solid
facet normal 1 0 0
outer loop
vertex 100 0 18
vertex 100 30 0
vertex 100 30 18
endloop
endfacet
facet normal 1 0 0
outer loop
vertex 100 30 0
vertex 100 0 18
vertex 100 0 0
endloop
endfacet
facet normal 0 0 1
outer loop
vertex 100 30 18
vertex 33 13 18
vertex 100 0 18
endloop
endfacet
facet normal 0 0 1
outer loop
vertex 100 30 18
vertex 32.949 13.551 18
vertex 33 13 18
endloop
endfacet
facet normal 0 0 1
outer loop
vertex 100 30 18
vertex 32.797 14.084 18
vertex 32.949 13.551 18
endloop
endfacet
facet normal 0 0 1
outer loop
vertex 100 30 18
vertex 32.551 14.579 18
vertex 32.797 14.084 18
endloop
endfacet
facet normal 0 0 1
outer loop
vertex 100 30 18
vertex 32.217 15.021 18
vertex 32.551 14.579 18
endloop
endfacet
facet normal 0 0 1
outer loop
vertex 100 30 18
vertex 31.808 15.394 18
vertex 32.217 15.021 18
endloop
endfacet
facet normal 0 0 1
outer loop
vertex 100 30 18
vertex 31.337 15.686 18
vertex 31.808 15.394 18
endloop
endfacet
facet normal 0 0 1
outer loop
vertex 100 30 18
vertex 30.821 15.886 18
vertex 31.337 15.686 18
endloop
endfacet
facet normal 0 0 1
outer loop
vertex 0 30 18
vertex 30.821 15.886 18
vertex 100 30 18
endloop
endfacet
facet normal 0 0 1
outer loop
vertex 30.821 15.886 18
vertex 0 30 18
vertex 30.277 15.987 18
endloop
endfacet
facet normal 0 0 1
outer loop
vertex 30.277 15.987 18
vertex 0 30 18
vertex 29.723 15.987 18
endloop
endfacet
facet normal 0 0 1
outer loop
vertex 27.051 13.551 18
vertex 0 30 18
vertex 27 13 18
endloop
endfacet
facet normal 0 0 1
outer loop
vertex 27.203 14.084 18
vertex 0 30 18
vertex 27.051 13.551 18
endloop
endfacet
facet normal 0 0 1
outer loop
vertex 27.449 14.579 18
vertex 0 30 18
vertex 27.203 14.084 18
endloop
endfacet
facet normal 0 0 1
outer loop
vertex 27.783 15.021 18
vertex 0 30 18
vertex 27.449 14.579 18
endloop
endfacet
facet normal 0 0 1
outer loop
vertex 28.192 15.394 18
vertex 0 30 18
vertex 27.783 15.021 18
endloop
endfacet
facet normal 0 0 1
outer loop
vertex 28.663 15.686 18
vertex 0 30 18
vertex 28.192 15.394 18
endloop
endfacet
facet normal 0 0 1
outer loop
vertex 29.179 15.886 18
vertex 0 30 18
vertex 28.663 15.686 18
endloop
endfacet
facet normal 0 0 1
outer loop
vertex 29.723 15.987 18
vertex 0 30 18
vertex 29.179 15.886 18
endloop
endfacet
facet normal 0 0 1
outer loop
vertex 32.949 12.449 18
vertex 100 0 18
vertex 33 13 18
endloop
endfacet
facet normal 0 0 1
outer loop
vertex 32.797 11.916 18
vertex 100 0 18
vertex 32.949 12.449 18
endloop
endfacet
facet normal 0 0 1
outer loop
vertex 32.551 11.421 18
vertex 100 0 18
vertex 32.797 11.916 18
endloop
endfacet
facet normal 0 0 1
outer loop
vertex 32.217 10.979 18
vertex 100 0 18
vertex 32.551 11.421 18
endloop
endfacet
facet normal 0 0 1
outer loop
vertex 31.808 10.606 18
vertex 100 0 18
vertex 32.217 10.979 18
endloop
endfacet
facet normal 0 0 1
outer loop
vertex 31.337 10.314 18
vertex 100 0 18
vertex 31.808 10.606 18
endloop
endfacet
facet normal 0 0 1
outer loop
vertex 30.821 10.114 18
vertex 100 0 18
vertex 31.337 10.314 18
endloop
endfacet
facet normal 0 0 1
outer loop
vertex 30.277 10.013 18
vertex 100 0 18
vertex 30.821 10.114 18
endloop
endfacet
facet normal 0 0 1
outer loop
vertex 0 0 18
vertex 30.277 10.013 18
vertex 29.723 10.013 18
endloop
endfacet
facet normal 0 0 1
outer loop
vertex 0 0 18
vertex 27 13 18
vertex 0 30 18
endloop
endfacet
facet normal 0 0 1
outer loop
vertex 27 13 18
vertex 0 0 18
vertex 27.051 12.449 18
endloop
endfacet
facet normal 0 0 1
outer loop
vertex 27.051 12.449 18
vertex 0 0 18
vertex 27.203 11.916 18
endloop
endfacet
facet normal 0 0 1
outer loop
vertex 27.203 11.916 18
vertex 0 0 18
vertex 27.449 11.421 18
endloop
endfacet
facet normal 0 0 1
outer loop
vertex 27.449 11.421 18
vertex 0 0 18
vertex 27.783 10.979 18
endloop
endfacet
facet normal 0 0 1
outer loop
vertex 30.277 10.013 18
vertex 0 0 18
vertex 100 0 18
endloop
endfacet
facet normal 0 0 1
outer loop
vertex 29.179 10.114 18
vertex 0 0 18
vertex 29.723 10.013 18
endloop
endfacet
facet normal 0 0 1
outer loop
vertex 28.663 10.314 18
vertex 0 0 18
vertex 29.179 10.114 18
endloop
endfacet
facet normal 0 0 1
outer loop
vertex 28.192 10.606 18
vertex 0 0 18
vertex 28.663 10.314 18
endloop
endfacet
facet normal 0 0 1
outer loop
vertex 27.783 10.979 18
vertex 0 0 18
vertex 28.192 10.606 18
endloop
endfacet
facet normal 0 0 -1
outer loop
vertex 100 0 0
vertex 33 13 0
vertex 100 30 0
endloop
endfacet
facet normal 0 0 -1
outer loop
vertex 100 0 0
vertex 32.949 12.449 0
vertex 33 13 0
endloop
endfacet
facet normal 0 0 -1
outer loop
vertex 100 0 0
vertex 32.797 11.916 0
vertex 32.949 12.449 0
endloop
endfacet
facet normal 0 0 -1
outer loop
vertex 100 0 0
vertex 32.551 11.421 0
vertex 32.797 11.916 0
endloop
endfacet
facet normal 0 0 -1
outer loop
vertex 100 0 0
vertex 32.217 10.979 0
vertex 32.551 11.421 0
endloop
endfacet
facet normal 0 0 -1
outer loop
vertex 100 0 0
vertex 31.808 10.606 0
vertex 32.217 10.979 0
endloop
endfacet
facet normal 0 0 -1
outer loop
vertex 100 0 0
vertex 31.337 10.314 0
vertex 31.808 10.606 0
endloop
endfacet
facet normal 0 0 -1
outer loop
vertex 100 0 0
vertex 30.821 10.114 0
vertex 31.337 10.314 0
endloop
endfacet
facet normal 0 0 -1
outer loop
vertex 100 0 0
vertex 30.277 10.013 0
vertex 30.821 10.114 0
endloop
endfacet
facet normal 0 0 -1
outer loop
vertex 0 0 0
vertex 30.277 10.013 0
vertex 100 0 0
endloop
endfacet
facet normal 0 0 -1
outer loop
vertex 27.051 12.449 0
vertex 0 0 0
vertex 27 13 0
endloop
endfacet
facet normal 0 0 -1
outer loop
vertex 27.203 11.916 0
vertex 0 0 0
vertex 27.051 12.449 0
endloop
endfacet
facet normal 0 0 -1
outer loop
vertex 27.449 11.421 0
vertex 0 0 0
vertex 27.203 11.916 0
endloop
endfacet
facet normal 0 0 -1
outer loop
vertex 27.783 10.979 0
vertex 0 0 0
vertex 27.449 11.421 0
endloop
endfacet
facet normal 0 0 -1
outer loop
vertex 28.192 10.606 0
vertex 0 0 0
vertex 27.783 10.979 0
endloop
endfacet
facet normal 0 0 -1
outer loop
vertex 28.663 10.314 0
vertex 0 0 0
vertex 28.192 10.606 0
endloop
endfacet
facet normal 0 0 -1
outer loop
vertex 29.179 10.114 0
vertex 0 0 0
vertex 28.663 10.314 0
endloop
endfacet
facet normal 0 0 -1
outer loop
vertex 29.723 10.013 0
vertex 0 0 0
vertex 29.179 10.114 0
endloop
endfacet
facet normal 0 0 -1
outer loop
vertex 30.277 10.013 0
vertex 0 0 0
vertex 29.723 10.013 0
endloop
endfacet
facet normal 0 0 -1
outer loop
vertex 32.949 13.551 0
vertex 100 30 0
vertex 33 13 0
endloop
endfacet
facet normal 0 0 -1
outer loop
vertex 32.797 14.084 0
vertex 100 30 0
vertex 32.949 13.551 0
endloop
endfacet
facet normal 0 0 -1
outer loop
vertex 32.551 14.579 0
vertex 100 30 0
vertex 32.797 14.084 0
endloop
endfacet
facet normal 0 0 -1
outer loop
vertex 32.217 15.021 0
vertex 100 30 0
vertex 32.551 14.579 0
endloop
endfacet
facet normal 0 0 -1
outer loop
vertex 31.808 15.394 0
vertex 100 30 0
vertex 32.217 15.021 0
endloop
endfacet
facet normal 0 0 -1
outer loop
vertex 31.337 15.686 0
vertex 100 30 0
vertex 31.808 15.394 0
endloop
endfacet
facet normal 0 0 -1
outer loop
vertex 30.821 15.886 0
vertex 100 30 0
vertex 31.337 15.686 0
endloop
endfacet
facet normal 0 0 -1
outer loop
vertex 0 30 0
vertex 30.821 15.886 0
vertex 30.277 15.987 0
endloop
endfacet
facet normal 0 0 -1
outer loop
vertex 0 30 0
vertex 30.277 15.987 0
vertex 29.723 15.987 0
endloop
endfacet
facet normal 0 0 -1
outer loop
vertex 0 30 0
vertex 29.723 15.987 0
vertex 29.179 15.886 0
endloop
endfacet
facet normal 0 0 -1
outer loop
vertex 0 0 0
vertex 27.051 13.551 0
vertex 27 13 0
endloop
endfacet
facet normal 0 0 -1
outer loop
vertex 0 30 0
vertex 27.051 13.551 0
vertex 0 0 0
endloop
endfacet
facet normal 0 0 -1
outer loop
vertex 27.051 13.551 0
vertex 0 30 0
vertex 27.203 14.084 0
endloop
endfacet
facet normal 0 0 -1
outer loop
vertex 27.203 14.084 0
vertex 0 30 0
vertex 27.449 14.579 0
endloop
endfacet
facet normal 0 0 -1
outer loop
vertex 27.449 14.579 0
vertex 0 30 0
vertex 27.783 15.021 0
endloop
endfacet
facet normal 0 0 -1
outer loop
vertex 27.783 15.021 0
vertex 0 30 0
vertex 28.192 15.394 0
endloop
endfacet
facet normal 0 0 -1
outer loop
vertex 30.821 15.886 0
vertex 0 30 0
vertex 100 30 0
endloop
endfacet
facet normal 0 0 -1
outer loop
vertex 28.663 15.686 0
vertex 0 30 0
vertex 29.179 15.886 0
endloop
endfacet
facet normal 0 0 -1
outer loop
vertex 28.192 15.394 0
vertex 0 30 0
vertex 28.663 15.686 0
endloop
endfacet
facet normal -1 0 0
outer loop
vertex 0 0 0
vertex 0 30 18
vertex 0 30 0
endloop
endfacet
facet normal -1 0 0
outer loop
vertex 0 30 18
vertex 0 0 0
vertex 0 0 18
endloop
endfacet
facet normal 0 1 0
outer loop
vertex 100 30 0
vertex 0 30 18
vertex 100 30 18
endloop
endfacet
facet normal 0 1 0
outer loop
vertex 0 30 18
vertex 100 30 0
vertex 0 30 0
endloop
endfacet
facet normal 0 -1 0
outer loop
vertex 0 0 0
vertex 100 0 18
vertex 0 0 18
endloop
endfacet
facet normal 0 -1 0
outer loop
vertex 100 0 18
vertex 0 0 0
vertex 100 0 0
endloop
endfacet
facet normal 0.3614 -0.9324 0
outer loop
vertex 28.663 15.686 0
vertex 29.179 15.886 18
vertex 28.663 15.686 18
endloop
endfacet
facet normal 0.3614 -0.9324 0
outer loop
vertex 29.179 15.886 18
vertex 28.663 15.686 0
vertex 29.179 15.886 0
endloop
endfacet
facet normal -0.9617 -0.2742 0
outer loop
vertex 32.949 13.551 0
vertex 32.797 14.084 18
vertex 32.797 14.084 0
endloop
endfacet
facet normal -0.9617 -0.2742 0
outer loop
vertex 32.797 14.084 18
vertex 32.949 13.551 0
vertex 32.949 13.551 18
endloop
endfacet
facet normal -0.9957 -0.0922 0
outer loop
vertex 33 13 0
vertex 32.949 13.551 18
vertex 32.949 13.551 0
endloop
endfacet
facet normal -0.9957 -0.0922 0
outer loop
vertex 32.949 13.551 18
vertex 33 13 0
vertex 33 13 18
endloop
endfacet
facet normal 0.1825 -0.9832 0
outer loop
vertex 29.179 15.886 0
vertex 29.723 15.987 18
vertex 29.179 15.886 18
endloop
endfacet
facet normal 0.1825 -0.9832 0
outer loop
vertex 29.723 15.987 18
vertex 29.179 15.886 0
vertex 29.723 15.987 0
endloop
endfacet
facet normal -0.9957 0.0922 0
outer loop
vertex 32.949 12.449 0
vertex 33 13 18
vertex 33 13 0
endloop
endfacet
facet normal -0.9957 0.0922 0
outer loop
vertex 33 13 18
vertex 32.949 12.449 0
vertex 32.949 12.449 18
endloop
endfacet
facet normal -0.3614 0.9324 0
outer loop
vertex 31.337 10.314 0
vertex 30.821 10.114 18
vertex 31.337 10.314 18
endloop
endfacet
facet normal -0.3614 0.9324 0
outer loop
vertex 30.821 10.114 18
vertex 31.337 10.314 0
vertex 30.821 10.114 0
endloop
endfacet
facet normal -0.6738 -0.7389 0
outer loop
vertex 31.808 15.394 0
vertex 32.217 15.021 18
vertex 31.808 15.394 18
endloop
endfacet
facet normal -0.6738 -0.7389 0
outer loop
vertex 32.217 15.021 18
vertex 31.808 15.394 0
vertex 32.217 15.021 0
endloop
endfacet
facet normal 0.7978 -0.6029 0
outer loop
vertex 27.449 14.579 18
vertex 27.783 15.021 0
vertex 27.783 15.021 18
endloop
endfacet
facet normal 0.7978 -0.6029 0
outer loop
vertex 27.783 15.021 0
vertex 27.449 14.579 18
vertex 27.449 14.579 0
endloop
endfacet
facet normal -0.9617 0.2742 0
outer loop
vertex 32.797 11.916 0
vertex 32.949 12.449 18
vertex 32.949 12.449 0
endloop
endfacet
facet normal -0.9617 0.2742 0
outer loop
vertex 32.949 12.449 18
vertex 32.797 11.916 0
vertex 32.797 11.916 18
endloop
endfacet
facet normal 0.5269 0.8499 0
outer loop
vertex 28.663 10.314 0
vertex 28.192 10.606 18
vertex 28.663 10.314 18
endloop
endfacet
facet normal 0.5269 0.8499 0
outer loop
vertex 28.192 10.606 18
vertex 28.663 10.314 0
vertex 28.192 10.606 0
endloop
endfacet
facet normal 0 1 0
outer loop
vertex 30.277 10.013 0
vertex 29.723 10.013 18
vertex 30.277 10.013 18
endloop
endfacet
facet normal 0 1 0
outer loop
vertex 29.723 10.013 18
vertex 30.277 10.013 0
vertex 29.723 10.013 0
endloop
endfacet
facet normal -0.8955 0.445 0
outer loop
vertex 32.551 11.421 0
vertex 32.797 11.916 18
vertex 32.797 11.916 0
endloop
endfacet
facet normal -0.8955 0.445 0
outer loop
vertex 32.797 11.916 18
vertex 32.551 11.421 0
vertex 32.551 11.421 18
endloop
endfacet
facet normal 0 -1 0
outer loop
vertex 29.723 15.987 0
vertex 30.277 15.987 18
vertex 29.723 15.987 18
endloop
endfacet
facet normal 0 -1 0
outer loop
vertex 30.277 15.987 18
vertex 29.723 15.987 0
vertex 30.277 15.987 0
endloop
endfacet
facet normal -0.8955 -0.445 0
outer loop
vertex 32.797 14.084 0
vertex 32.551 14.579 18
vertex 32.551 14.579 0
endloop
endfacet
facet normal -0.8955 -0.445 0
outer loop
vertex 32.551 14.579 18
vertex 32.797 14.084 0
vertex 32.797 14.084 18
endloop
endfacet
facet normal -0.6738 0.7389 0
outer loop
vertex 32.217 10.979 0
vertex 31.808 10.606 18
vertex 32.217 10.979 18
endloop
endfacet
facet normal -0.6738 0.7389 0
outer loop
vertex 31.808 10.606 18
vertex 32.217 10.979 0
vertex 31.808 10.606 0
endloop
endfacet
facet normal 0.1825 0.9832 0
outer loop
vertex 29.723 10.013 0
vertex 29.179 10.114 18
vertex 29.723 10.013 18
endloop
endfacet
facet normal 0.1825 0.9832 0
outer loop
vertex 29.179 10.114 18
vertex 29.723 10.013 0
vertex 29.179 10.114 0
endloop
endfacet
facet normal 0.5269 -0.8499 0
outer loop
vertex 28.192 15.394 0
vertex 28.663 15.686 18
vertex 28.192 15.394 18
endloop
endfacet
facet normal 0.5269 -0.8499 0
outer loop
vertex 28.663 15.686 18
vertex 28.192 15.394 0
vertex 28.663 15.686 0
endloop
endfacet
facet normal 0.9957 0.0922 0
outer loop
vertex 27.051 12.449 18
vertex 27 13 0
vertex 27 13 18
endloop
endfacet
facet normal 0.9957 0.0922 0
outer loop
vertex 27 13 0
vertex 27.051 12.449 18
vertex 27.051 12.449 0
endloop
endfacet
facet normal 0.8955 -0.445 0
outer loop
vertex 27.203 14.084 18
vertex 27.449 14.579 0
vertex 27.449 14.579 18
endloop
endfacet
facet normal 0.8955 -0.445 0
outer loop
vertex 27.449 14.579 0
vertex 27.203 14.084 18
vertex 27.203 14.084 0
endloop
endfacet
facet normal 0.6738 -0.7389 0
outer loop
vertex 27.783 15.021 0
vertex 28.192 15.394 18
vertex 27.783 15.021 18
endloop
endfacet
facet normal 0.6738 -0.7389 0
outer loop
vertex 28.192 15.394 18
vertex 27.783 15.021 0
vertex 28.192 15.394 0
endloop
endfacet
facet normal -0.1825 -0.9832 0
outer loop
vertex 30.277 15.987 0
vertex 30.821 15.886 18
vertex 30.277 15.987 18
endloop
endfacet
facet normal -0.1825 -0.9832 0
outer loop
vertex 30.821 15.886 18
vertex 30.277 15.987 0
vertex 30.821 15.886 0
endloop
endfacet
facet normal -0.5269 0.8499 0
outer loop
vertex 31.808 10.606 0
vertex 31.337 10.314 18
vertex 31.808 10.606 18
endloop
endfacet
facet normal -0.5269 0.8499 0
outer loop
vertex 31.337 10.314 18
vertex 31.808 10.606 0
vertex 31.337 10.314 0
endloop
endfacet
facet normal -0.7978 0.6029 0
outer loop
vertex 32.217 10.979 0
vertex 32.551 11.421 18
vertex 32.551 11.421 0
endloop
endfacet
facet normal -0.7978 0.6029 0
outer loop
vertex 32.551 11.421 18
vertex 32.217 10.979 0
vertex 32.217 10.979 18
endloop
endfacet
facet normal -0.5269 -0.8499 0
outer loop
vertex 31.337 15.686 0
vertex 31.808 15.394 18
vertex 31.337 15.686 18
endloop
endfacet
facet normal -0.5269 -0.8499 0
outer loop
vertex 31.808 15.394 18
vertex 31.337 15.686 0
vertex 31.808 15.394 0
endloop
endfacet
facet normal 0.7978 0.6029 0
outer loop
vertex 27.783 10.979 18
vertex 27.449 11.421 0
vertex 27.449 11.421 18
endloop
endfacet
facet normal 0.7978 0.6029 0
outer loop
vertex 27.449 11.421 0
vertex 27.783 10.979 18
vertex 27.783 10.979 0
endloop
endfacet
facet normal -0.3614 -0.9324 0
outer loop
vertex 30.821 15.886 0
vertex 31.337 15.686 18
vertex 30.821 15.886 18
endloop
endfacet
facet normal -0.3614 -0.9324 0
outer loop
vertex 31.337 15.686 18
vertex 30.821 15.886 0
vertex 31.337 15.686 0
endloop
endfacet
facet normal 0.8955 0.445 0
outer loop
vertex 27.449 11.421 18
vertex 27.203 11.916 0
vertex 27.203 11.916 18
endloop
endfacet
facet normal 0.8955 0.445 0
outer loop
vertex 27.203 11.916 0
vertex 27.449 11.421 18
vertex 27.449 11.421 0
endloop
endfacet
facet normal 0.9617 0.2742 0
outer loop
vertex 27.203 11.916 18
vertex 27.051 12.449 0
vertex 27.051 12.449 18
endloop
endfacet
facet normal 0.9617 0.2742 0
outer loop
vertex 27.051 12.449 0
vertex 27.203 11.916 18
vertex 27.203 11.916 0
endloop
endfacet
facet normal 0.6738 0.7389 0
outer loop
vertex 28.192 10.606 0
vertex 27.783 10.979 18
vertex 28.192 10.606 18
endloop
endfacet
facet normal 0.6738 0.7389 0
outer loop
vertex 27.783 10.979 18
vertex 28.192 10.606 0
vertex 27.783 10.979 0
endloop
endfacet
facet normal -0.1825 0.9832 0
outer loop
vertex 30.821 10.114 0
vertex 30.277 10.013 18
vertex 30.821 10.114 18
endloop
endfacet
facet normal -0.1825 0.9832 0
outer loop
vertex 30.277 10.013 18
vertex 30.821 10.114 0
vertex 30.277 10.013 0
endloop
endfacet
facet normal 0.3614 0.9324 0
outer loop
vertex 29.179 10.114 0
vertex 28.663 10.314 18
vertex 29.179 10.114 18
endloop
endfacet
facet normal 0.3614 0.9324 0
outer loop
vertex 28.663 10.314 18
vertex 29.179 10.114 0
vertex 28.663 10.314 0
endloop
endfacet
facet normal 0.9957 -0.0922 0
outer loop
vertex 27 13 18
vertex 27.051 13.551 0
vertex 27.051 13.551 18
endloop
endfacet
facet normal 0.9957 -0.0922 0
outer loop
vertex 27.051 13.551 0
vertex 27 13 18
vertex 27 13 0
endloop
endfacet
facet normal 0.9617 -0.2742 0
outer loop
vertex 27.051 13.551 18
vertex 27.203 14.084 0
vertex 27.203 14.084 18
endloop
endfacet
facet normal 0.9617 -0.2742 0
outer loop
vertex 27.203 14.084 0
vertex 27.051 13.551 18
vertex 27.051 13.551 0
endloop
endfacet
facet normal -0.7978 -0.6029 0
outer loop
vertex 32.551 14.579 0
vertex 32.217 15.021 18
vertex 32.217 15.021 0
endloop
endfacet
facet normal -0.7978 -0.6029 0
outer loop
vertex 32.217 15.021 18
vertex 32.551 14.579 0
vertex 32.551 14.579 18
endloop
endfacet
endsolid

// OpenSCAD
// file: screw-hole.scad
// Generic screw holder

// Copyright (C) 2021 Jeremy Bennett <jeremy@jeremybennett.com>

// Contributor Jeremy Bennett <jeremy@jeremybennett.com>

// SPDX-License-Identifier: CC-BY-SA-4.0


// The countersink height is calculated as:
//
//      x - y
//    ----------
//    2 tan(B/2)
//
// where x is the head diameter, y is the shank diameter and B is the head
// angle (100 degrees for DIN 7997x I believe).
//
// Table of 2 tan(B/2) for various B
//
//  60    1.1547
//  82    1.7386
//  90    2.0000
// 100    2.3835
// 110    2.8563

// Small amount
CS_EPS = 0.1;

// Height of rim above countersink
CS_RIM_HEIGHT = 0.3;

// Screw height - effectively infinite!
SCREW_HEIGHT = 100;

// Table of screw dimensions for DIN 7997z countersunk wood screws
// Entry is thread diameter, head diameter, head height.
SCREW_TAB = [ [2.5,  4.7, 1.50],
	      [3.0,  5.6, 1.65],
	      [3.5,  6.5, 1.93],
	      [4.0,  7.5, 2.20],
	      [4.5,  8.3, 2.35],
	      [5.0,  9.2, 2.50],
	      [5.5, 10.2, 2.75],
	      [6.0, 11.0, 3.00],
              [0.0,  0.0, 0.00] ];		// End marker

// Recursively look up dimensions in the SCREW_TAB
function recursive_screw_dims (diam, n) =
     ( (SCREW_TAB[n][0] == 0.0) ? SCREW_TAB[n] :
       (SCREW_TAB[n][0] == diam) ? SCREW_TAB[n] :
       recursive_screw_dims (diam, n + 1) );

// Look up a screw's dimensions
function screw_dims (diam = 4.0) = recursive_screw_dims (diam, 0);

// Hole for a countersink screw
module screw_hole (shank_diam, invert = true) {
     let (dims = screw_dims (shank_diam),
	  head_diam = dims[1],
	  cs_height = dims[2],
	  screw_angle = invert ? 180 : 0) {
	  rotate (a = [0, screw_angle, 0]) {
	       cylinder(r = head_diam / 2, h = CS_RIM_HEIGHT + CS_EPS,
			center = false, $fn = 45);
	       translate(v = [0, 0, CS_RIM_HEIGHT])
	            cylinder(r1 = head_diam / 2, r2 = shank_diam / 2,
			     h = cs_height, center = false, $fn = 45);
	       cylinder(r = shank_diam / 2, h = SCREW_HEIGHT, center = false,
			$fn = 45);
	  }
     }
}
// main file
// Base support
//
// Copyright (C) 2021 Jeremy Bennett <jeremy@jeremybennett.com>
// Contributor Jeremy Bennett <jeremy@jeremybennett.com>
//
// This is part of the open source laptop stand
//
// SPDX-License-Identifier: CC-BY-SA-4.0

// Support on the base board

include <screw-hole.scad>

EPS = 0.01;
D = 18.0;
L = 100.0;
W = 30.0;

difference () {
     // The board
     cube (size = [L, W, D], center = false);
     // hole
     translate (v = [30, 13, 0])
	  cylinder (r = 3.0, h = D * 4, center = true, $fn = 34);
}
